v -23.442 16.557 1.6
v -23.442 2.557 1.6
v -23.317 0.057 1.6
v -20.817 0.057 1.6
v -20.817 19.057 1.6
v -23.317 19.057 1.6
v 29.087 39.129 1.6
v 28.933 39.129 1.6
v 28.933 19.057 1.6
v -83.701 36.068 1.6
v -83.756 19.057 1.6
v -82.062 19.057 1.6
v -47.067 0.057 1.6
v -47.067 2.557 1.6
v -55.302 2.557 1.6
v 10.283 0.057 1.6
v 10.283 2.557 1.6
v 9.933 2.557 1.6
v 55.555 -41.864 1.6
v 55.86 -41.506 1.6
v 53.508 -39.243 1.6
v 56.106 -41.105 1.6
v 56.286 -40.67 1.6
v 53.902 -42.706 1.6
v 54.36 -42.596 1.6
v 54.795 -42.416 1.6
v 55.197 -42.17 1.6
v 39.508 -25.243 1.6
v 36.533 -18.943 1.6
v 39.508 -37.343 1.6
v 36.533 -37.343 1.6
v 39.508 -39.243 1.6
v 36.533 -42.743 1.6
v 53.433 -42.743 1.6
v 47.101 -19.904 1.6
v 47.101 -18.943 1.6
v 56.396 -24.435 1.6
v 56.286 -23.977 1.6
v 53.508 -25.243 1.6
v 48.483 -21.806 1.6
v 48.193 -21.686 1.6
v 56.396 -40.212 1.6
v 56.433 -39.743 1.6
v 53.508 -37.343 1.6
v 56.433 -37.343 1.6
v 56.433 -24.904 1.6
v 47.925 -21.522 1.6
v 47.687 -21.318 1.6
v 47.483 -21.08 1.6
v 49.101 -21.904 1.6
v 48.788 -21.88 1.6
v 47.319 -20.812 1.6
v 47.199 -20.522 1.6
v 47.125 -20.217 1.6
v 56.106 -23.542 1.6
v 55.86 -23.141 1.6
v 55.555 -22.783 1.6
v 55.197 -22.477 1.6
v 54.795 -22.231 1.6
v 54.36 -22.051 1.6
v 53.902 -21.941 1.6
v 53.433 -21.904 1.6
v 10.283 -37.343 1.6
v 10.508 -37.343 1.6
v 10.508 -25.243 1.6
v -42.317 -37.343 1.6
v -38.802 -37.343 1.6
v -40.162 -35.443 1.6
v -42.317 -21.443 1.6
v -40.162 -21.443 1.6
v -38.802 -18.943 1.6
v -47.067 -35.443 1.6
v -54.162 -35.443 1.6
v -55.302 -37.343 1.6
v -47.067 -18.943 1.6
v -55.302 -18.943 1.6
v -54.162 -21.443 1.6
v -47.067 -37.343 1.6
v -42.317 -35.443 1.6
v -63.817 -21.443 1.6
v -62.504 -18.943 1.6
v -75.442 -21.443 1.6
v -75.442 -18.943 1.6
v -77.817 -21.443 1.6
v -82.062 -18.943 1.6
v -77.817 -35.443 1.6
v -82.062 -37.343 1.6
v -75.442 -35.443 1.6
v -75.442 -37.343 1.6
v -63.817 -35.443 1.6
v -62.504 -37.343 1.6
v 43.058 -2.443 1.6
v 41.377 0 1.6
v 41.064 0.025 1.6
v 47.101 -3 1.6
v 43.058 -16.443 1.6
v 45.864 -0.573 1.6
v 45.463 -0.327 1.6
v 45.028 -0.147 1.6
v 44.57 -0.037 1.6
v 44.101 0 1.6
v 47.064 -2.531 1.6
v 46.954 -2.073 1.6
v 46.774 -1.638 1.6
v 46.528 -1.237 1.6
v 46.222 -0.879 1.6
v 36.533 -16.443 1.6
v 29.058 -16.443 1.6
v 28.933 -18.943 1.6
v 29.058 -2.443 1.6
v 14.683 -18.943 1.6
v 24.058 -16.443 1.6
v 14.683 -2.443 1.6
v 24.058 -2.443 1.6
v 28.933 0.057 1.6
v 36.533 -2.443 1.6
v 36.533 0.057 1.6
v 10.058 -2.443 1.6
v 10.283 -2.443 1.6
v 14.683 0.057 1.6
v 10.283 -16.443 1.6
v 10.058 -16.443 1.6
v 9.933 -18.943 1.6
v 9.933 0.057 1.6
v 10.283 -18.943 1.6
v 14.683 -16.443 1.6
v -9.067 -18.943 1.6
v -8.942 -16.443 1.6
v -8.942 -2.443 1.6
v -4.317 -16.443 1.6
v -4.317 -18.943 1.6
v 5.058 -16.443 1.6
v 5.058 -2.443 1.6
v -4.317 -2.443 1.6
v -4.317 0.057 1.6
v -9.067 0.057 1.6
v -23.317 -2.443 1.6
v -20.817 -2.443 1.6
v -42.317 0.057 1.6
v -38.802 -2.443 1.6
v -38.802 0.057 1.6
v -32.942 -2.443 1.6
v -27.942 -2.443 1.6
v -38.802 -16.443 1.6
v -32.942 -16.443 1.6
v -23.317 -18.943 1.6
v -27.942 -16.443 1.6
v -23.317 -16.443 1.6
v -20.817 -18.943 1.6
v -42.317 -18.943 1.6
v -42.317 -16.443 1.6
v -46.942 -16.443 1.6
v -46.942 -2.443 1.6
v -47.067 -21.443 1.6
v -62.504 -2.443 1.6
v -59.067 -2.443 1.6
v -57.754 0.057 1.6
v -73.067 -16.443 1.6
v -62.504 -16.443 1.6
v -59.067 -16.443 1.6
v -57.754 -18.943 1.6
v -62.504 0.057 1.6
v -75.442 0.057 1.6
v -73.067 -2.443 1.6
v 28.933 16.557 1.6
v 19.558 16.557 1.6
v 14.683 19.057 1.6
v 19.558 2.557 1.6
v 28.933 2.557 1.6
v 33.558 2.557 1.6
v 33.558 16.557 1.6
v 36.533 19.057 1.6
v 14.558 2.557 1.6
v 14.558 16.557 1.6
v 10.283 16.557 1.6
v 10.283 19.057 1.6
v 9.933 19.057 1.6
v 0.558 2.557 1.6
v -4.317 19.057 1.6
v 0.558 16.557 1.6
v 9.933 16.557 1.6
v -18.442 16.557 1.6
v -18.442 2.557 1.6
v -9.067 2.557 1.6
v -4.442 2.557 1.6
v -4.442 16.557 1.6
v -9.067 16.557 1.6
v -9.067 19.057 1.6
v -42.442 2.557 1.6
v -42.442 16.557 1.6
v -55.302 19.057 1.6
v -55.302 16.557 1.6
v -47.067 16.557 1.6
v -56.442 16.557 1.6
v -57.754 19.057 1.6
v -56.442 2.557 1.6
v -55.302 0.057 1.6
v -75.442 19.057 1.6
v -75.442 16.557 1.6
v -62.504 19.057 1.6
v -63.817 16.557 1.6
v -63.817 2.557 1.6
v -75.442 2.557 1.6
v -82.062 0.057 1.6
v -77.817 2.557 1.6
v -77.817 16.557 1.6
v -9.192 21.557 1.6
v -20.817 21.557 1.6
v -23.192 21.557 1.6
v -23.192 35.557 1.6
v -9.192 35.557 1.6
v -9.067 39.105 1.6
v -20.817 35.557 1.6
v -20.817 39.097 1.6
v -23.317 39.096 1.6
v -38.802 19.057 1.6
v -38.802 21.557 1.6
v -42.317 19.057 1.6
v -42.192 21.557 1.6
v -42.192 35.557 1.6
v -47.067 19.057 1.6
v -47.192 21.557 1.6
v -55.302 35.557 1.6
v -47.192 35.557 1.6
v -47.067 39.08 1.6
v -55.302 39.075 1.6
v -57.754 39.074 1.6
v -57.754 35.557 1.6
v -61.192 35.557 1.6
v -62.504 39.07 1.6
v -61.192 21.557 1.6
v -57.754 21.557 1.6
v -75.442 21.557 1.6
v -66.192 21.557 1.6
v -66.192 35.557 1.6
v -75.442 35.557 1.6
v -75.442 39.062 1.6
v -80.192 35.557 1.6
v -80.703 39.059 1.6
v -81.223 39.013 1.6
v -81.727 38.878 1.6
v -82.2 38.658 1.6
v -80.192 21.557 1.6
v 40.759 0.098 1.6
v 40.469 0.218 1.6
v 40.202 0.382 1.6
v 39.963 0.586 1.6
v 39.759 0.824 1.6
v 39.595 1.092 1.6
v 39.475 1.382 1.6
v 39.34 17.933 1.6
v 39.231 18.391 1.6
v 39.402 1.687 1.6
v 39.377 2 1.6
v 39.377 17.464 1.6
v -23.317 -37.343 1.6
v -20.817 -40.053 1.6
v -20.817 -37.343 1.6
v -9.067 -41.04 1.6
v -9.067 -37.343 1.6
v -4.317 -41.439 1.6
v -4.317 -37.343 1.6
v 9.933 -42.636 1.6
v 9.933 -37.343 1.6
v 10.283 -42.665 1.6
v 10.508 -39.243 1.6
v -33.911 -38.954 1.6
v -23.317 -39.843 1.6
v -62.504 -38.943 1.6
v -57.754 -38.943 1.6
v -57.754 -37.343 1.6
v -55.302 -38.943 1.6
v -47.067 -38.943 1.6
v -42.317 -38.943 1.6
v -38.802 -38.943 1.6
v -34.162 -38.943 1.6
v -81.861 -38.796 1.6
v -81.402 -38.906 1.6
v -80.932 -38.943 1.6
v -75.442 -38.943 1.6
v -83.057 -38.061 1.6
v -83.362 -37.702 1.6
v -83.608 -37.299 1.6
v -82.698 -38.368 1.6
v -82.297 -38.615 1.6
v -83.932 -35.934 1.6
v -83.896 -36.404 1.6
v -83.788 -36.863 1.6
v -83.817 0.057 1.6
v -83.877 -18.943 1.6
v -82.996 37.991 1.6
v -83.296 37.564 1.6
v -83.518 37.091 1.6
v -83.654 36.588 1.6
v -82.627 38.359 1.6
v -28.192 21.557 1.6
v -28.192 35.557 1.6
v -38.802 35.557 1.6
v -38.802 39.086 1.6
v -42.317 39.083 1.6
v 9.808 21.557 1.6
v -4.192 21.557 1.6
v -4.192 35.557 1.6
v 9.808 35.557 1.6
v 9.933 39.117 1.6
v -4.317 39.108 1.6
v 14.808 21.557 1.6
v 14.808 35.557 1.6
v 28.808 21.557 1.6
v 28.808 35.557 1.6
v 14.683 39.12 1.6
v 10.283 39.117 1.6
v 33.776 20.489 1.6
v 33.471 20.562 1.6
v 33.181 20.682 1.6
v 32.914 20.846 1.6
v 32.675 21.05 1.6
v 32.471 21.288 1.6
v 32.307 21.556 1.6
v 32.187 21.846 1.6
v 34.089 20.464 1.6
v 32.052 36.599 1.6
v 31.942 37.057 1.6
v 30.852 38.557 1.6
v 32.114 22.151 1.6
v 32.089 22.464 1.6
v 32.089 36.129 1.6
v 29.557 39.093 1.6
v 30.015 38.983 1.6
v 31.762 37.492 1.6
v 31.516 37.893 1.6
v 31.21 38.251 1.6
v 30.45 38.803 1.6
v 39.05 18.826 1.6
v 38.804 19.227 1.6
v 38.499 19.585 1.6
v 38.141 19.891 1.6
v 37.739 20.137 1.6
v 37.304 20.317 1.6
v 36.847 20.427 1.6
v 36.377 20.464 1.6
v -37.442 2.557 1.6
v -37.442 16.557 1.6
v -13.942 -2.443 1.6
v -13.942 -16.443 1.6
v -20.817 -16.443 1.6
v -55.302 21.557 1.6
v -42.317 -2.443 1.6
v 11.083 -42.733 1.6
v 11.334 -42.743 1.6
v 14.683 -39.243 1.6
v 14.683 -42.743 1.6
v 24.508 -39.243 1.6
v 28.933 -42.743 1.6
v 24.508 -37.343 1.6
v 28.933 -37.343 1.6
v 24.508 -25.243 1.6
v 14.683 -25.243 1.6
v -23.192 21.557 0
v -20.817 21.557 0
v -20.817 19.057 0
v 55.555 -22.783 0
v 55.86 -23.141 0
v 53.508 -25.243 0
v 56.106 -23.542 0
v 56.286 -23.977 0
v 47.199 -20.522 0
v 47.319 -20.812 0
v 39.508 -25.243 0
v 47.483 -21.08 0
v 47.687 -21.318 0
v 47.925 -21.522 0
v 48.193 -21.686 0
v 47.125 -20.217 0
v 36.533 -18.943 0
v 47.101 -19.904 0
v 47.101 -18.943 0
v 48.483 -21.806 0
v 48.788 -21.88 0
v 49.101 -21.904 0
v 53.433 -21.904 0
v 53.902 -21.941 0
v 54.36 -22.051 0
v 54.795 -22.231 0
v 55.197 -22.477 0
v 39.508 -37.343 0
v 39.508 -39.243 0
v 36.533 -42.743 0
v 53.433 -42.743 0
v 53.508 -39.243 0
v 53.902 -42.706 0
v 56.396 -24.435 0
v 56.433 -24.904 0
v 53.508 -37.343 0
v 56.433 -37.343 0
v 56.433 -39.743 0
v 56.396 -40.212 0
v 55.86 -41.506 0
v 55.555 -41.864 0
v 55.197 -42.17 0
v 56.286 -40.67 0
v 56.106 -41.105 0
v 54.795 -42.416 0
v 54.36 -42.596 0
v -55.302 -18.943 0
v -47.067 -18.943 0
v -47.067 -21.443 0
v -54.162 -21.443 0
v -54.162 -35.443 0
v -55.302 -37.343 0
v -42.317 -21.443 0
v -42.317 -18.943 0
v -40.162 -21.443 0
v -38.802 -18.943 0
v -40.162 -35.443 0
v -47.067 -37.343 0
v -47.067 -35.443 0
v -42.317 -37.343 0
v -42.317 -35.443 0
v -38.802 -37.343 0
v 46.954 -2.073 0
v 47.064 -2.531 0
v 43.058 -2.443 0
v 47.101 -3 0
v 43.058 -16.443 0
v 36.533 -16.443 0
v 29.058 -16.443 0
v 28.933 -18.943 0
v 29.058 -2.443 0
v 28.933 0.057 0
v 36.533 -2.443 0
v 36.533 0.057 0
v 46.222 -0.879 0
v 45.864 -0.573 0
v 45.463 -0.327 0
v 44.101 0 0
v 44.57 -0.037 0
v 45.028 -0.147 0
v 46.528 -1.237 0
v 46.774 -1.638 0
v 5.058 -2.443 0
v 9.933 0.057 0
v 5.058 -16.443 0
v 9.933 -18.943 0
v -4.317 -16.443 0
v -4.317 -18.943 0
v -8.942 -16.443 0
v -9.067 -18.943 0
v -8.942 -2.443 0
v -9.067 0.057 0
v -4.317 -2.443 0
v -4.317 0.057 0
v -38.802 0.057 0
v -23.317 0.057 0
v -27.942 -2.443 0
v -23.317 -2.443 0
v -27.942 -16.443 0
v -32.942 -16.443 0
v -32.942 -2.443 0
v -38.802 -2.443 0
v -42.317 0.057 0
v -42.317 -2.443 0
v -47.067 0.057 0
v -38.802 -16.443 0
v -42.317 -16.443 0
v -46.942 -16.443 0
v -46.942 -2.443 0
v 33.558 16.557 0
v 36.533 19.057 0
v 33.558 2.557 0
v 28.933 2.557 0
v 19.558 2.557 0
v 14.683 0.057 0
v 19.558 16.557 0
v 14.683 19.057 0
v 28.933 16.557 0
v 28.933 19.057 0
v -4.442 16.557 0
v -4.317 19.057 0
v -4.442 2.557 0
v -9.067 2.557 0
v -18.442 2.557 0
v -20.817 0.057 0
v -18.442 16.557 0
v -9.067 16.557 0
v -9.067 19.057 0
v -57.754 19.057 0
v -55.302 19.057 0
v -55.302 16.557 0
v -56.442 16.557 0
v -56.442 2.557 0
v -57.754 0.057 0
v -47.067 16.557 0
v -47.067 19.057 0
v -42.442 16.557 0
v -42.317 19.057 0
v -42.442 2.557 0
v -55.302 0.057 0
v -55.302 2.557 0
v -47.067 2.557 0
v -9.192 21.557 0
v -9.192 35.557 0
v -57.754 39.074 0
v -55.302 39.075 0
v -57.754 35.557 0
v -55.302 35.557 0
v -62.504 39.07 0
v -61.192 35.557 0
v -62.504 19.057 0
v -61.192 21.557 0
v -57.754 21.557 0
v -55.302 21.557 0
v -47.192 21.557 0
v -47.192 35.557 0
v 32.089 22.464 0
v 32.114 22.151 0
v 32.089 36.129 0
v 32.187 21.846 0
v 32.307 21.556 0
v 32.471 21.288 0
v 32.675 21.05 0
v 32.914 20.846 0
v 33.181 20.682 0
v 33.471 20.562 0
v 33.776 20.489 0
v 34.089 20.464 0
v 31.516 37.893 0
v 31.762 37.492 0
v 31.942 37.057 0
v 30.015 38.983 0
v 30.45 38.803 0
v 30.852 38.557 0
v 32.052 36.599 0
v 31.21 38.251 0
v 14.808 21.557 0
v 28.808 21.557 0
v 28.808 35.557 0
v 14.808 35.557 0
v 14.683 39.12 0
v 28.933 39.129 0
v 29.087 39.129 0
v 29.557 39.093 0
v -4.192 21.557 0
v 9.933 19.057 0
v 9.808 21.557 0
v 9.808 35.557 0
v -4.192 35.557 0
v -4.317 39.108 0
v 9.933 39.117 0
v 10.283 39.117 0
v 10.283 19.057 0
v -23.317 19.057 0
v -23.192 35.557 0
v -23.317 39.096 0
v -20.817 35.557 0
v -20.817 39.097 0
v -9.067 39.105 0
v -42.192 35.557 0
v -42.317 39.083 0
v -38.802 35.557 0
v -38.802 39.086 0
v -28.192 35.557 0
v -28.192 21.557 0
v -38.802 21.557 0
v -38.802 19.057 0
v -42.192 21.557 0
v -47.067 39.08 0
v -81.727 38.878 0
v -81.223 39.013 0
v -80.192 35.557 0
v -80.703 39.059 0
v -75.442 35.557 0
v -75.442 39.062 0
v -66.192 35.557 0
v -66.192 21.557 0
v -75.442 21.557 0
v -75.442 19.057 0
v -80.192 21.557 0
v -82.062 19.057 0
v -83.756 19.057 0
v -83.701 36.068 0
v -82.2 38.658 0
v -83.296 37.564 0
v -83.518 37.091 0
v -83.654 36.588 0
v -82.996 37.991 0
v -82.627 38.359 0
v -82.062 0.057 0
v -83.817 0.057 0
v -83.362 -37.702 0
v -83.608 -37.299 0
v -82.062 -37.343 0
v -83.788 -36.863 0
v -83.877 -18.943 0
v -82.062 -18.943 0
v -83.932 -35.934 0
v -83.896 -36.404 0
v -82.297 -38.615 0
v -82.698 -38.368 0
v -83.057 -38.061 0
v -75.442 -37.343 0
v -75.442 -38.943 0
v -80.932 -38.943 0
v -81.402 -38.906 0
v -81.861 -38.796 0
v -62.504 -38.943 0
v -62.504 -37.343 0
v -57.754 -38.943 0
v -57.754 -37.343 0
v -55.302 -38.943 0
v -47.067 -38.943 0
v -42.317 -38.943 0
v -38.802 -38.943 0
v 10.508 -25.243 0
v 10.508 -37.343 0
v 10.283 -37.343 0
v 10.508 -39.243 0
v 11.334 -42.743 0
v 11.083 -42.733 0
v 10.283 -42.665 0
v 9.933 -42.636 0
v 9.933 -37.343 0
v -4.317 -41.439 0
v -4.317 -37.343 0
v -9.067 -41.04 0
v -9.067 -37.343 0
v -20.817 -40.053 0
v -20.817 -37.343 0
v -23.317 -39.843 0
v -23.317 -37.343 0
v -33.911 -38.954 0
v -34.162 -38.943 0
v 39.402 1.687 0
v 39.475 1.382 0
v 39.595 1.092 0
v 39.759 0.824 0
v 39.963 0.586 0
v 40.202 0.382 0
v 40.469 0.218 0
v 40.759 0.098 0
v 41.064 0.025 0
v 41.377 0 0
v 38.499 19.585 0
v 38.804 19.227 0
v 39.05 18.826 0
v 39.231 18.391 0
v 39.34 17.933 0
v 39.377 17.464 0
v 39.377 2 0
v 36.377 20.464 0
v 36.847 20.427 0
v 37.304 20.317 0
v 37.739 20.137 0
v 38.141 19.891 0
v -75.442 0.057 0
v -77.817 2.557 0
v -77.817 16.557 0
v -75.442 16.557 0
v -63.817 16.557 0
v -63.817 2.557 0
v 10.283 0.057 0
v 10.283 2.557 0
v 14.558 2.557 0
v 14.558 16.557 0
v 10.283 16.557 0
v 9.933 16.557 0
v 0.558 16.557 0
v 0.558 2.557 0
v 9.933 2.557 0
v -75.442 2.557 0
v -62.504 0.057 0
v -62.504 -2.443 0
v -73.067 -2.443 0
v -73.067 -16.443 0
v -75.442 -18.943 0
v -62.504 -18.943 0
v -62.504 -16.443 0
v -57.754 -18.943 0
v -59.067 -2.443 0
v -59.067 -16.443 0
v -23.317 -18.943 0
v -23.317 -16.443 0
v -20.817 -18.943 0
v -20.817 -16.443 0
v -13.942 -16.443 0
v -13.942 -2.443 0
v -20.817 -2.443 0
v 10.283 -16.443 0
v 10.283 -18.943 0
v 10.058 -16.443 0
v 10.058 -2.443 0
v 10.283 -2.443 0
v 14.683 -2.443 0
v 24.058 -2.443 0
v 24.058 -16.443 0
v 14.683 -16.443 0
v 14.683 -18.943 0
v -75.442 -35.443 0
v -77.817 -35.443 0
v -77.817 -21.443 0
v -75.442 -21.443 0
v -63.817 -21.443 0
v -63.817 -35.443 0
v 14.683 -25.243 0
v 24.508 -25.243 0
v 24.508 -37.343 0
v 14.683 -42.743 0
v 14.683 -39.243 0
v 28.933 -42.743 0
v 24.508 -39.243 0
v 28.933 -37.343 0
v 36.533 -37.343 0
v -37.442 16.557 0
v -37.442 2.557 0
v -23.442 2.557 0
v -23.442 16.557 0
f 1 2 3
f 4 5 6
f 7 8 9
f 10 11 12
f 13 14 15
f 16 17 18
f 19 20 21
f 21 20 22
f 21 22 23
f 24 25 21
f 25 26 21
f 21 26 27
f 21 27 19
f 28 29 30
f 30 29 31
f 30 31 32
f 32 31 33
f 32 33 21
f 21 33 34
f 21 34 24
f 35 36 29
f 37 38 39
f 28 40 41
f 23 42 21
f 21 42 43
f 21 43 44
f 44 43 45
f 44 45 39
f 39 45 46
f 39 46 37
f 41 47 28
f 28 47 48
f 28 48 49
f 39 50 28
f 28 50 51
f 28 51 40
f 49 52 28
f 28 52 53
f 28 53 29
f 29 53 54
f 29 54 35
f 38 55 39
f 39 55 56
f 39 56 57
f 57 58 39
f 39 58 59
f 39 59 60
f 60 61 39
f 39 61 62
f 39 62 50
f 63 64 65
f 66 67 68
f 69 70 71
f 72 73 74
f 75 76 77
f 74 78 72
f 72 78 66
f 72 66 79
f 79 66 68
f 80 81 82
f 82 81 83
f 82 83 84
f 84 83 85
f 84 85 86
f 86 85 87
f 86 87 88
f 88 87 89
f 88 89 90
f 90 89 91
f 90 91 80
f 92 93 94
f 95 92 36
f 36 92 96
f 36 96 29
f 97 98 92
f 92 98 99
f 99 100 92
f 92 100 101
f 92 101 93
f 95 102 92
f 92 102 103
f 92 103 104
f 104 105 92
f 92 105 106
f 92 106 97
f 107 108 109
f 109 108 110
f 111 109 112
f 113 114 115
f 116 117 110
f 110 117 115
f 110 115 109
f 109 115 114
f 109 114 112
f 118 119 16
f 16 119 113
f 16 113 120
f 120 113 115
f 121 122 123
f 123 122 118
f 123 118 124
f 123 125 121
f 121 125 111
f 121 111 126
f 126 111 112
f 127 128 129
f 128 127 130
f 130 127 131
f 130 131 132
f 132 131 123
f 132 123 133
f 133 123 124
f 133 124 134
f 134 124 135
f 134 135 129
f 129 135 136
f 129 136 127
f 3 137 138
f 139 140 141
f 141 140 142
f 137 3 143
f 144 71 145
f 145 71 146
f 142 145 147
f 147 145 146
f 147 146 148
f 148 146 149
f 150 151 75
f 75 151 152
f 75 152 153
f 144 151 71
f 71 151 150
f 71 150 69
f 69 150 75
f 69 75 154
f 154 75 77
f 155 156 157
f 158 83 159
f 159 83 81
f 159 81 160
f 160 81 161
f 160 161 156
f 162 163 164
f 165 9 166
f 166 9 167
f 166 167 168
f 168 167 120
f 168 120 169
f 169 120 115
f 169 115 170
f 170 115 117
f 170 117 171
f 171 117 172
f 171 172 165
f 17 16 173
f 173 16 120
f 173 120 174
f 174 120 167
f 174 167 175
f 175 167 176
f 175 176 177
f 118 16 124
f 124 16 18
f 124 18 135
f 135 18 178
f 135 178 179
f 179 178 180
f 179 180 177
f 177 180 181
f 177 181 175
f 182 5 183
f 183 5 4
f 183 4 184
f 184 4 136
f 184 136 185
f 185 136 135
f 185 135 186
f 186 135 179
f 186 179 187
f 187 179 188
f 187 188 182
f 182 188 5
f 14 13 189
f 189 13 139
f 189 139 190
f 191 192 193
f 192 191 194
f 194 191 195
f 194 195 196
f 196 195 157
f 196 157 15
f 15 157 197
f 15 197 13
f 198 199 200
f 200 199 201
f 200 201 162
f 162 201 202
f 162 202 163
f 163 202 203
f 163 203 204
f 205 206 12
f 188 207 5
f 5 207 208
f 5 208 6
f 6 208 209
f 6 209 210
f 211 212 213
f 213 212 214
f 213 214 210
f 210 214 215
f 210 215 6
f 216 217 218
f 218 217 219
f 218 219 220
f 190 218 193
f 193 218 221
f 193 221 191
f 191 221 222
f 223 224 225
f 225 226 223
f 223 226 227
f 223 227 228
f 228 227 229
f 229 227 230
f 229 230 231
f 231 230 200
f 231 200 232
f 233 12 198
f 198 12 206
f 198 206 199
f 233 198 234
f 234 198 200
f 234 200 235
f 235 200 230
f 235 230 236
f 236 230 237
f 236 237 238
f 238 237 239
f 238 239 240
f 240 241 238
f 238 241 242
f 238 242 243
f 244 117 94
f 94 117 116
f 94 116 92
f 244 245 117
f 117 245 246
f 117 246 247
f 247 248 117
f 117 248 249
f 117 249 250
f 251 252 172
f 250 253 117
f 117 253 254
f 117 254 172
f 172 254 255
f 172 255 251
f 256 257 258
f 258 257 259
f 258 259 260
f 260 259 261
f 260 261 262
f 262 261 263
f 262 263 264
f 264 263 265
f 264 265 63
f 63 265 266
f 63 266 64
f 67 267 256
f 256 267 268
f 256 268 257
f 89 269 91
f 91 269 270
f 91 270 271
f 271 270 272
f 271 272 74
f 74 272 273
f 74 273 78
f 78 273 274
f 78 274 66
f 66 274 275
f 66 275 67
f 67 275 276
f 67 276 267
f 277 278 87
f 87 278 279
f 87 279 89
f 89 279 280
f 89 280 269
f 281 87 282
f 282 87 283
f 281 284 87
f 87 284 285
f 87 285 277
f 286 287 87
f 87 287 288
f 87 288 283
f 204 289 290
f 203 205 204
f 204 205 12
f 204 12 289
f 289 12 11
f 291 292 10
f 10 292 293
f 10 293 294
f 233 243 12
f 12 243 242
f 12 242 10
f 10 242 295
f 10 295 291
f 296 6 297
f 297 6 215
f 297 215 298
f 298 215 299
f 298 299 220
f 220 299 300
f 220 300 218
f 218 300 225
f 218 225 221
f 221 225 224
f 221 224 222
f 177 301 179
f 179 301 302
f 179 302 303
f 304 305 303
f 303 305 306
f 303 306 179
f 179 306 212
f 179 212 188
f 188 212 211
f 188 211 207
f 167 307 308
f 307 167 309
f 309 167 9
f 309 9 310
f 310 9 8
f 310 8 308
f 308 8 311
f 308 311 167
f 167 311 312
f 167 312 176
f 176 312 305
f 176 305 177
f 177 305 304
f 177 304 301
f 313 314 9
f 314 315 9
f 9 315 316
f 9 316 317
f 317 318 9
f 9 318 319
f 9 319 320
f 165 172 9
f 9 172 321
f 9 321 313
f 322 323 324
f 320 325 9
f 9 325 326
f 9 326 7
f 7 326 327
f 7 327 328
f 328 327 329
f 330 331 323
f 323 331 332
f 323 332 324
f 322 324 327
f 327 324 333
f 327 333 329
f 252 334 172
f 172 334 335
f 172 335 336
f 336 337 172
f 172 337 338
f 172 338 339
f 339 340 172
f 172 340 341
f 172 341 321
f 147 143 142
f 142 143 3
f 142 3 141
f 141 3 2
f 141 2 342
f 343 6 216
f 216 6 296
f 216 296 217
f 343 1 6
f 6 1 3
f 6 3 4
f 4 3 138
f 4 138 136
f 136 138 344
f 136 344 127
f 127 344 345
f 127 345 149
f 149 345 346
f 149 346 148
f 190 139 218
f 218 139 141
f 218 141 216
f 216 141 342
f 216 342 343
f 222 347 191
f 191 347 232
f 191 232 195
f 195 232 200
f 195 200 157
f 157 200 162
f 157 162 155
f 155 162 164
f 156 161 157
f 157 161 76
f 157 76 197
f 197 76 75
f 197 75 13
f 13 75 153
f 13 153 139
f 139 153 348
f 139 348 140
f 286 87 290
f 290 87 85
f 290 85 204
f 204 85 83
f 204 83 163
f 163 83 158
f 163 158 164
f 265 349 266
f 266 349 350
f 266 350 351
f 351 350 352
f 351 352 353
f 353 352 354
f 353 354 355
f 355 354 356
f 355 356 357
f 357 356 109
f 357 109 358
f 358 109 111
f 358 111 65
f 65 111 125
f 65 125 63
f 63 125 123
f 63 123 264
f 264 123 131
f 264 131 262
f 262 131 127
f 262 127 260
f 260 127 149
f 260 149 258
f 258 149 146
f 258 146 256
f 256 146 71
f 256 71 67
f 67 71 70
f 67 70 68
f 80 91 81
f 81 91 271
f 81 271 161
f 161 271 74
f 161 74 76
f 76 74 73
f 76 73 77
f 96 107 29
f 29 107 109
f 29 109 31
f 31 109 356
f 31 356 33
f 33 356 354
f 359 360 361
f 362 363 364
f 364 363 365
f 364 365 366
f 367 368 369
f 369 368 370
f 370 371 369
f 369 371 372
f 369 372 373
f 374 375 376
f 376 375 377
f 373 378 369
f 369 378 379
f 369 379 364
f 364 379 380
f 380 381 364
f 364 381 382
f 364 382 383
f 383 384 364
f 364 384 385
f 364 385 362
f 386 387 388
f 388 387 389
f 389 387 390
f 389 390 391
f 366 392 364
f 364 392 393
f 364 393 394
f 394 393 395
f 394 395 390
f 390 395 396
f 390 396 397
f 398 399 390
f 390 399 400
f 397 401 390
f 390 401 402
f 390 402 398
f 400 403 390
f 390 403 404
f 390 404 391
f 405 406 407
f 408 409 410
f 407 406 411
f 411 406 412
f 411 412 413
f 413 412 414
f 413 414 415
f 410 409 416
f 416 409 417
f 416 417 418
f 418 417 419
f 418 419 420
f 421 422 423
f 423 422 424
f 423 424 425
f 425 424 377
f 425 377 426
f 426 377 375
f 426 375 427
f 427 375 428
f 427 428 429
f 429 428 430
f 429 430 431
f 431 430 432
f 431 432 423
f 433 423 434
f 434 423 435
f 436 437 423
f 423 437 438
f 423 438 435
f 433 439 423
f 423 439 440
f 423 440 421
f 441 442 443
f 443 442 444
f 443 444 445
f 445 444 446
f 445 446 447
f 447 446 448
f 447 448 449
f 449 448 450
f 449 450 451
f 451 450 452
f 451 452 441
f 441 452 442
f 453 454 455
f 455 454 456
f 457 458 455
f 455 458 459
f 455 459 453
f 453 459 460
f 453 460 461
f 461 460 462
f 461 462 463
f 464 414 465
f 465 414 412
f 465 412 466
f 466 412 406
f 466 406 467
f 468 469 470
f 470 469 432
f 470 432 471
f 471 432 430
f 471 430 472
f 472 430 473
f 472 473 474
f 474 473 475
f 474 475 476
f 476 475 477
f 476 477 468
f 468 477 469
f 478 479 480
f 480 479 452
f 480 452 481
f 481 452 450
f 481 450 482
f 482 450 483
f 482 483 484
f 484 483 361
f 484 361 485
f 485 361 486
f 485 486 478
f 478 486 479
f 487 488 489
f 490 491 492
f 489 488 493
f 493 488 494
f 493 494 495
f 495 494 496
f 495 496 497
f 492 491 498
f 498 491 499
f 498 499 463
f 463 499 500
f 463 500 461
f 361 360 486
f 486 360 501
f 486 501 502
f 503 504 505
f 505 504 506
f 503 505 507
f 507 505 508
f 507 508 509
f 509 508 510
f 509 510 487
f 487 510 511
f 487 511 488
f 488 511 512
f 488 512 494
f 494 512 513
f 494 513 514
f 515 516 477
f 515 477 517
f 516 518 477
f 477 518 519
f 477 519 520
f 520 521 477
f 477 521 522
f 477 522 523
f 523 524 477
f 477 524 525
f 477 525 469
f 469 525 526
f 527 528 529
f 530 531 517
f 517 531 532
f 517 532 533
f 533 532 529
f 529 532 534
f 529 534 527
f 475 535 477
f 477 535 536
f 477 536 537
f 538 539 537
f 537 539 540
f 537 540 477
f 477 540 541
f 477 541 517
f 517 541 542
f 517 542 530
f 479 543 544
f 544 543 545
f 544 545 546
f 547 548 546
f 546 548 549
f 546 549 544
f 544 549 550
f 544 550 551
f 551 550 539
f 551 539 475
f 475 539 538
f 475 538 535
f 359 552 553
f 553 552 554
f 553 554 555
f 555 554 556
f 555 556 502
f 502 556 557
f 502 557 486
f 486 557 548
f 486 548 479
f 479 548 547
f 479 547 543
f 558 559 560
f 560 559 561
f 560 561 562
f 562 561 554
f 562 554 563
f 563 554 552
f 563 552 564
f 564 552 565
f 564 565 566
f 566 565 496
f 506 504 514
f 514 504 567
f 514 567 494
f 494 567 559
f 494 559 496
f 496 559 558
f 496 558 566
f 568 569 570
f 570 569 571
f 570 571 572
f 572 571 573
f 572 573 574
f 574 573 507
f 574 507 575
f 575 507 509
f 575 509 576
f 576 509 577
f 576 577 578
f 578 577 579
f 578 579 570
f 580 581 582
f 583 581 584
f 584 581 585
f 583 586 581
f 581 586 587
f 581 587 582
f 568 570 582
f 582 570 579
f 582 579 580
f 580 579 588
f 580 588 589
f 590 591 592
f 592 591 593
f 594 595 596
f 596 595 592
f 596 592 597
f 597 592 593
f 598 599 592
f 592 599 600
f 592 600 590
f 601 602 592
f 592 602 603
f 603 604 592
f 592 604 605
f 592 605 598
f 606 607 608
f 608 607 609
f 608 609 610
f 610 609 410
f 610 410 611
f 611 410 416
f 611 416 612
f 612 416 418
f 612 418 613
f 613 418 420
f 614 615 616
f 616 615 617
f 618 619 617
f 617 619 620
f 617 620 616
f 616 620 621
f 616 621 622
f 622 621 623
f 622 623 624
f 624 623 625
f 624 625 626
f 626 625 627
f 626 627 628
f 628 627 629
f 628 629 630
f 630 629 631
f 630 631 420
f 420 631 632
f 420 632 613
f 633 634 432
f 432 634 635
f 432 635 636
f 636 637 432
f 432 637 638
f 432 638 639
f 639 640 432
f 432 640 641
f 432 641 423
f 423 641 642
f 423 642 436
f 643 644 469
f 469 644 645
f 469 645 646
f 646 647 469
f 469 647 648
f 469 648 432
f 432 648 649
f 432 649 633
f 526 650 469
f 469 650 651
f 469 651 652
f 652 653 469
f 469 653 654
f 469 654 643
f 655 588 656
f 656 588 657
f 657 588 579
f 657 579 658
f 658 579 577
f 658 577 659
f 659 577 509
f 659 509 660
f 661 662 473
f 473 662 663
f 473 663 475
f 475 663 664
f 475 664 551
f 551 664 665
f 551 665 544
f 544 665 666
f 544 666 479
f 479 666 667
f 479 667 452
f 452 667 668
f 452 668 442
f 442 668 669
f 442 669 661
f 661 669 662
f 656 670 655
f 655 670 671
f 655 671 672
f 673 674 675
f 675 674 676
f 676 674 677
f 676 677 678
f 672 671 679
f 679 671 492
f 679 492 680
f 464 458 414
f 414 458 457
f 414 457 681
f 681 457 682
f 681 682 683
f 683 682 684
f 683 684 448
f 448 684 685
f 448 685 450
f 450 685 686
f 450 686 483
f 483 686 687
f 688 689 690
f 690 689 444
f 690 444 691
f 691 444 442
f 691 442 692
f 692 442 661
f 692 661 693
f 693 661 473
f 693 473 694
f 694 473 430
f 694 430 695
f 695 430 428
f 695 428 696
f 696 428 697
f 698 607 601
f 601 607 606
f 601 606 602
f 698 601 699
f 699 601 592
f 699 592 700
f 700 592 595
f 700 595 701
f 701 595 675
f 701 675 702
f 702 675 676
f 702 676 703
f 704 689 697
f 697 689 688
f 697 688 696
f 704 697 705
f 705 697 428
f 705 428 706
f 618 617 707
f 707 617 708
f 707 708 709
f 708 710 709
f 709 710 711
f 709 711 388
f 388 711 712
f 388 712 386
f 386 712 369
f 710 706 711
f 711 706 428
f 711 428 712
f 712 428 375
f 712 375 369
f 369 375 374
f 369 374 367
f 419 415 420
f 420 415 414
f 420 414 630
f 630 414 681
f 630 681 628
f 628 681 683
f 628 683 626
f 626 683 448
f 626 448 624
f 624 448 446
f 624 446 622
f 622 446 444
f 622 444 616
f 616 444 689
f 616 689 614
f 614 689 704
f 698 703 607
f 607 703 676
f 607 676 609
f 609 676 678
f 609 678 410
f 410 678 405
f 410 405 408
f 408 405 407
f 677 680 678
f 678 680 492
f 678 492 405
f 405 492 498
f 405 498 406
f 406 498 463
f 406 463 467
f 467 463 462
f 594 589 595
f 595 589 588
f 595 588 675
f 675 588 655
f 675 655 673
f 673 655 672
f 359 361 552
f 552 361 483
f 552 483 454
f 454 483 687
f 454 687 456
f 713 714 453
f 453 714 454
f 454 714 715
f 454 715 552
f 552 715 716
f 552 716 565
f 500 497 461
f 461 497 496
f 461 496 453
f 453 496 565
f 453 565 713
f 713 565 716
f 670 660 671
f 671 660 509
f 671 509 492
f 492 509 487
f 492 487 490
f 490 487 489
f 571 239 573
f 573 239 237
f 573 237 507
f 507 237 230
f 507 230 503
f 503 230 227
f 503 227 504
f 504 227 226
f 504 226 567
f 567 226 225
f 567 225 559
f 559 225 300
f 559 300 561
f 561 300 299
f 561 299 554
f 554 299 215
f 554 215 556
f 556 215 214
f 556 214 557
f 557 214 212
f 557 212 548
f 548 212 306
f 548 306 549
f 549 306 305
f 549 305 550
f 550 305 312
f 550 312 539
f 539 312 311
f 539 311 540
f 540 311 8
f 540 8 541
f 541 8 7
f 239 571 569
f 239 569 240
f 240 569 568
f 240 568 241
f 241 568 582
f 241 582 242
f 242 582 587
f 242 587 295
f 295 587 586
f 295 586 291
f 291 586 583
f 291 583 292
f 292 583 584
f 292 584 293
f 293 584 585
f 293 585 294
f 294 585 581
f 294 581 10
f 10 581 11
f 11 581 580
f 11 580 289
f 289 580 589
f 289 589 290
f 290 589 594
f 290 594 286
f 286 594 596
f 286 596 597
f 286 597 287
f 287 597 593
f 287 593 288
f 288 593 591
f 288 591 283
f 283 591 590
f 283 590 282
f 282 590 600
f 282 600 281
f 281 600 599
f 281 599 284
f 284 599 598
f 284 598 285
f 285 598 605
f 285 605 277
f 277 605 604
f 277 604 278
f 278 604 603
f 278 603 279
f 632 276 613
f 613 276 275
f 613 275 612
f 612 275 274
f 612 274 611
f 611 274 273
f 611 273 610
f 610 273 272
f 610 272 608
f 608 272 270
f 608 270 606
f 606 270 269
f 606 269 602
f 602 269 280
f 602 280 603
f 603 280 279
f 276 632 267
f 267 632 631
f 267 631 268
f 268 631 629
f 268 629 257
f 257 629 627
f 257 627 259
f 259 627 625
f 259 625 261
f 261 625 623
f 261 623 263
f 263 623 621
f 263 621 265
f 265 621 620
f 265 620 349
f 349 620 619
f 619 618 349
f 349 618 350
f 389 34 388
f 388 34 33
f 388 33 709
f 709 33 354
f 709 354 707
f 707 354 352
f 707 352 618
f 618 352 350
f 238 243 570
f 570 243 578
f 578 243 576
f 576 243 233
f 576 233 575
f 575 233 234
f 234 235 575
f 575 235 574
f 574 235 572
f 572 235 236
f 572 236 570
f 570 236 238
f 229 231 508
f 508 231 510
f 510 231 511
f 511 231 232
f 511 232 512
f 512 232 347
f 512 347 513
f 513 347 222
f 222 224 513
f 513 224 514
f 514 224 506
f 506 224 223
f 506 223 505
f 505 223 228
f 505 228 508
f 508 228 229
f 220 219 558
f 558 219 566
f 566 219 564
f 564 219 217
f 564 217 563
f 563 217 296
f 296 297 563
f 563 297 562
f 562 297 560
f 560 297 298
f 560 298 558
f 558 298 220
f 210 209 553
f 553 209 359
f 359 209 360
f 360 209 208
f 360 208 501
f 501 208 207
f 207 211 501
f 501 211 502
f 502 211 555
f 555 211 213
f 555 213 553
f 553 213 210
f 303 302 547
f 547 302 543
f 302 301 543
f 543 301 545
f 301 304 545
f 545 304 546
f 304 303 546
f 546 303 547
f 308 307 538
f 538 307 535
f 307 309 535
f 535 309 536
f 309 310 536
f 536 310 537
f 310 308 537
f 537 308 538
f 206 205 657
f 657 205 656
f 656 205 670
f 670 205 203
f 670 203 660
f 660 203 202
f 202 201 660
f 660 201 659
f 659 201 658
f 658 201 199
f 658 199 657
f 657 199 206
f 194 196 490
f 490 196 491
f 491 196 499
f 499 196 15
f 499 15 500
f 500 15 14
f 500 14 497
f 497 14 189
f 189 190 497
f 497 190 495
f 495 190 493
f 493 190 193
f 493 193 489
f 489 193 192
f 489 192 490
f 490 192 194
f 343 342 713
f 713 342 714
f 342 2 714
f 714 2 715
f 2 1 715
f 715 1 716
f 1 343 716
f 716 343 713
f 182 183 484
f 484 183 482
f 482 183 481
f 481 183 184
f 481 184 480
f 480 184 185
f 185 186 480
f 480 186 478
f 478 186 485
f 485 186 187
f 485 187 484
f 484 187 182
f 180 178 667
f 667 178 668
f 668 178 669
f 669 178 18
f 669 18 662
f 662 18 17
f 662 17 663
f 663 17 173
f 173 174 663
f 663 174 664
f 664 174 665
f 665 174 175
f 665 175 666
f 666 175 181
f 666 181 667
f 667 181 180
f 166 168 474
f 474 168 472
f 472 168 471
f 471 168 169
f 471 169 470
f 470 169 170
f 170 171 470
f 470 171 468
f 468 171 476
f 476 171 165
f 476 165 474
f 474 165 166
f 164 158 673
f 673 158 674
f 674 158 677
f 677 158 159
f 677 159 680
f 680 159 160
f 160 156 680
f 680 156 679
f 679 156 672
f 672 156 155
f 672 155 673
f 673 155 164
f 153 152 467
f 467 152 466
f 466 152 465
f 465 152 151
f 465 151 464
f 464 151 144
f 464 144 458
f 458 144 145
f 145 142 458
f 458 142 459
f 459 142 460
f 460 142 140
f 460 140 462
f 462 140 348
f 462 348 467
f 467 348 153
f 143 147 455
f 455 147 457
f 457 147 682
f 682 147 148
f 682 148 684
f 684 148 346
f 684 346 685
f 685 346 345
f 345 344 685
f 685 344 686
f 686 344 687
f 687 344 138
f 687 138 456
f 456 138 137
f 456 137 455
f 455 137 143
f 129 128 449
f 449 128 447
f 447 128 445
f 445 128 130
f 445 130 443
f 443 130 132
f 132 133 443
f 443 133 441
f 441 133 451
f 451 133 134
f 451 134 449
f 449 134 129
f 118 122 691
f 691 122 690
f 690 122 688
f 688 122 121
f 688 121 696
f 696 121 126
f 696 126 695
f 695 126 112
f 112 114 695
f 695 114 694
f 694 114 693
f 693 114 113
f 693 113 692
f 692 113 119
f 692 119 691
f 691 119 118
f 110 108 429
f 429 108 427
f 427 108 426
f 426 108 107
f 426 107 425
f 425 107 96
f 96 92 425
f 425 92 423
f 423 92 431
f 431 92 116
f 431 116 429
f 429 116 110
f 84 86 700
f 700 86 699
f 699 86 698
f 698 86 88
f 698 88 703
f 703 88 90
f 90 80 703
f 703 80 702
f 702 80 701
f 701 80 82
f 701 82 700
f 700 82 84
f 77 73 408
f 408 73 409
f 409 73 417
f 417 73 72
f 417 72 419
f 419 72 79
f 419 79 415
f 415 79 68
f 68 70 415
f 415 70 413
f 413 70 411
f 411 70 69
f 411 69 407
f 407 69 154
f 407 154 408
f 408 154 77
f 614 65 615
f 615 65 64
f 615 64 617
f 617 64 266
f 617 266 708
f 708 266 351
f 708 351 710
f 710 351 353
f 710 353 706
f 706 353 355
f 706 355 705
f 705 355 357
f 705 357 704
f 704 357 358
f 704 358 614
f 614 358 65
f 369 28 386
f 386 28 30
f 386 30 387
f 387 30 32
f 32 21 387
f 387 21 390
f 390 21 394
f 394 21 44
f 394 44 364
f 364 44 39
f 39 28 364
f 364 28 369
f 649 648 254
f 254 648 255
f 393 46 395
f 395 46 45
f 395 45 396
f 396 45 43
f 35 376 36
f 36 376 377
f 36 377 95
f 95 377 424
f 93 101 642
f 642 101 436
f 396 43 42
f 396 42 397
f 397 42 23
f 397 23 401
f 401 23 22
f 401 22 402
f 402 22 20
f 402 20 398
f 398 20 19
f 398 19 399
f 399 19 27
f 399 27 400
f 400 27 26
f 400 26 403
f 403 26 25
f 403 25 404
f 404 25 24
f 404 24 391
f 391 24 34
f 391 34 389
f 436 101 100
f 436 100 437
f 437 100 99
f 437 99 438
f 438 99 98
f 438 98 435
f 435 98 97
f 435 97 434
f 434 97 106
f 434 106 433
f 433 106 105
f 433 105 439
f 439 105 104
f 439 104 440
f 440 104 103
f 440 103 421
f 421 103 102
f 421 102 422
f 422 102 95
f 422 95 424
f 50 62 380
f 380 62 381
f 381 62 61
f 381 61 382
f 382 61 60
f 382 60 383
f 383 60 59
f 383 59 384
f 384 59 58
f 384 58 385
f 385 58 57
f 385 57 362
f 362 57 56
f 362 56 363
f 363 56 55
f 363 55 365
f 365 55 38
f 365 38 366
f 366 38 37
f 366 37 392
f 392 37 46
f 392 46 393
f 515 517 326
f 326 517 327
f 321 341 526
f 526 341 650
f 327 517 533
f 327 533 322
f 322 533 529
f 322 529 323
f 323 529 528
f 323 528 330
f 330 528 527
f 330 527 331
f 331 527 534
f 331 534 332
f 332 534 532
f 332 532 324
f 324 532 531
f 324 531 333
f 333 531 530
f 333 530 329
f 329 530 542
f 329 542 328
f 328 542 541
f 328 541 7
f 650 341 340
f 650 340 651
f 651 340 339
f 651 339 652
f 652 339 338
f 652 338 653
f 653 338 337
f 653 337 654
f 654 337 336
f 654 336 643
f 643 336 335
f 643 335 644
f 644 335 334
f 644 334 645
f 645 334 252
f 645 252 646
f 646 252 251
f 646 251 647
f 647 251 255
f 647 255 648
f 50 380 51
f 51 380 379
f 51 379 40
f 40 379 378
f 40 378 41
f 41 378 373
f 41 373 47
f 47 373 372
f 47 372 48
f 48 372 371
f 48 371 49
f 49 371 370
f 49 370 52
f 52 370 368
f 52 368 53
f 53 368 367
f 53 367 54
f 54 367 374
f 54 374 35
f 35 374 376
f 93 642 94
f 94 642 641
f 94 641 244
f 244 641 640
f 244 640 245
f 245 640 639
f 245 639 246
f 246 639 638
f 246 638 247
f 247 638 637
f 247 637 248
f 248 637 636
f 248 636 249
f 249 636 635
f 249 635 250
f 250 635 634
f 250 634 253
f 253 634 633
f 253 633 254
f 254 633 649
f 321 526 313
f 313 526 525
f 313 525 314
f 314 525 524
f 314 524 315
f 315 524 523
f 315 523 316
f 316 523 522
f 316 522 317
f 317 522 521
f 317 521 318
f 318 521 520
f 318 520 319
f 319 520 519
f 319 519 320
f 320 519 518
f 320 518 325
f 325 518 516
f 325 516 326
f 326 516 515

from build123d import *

# Parameters (mm, degrees)
SKETCH1_R           = 1.5
SKETCH1_W           = 14
SKETCH1_H           = 14
BOSS_EXTRUDE1_DEPTH = 1.6
CUT_EXTRUDE1_DEPTH  = 1.6
FILLET1_R           = 3
SKETCH3_W           = 5.928661094
SKETCH3_H           = 12.435728147
SKETCH3_W_2         = 5.350255133
SKETCH3_H_2         = 5.928661094
SKETCH3_W_3         = 5.639458113
SKETCH3_W_4         = 6.651668543
SKETCH3_H_3         = 7.446976739
SKETCH3_W_5         = 5.928661093
SKETCH3_H_4         = 5.784059603
SKETCH3_H_5         = 4.627247683
BOSS_EXTRUDE2_DEPTH = 1.6
CUT_EXTRUDE2_DEPTH  = 95.202490958
FILLET2_R           = 3
CUT_EXTRUDE3_DEPTH  = 95.202490958
FILLET3_R           = 3
FILLET4_R           = 3
FILLET7_R           = 2


with BuildPart() as part:
    # Sketch1 → Boss-Extrude1 (new body)
    with BuildSketch(Plane.XY):
        with BuildLine():
            Line((69.256483633, 39.154946315), (-80.703110167, 39.058787515))
            ThreePointArc((-80.703110167, 39.058787515), (-82.819785745, 38.18282616), (-83.701171171, 36.068403419))
            Line((-83.701171171, 36.068403419), (-83.931946571, -35.933513481))
            ThreePointArc((-83.931946571, -35.933513481), (-83.056679124, -38.061046878), (-80.931961975, -38.943128786))
            Line((-80.931961975, -38.943128786), (-34.162352475, -38.943128786))
            ThreePointArc((-34.162352475, -38.943128786), (-34.036703471, -38.945761219), (-33.911274976, -38.953653901))
            Line((-33.911274976, -38.953653901), (11.083089424, -42.732603701))
            ThreePointArc((11.083089424, -42.732603701), (11.20851792, -42.740496382), (11.334166924, -42.743128815))
            Line((11.334166924, -42.743128815), (59.596129524, -42.743128815))
            ThreePointArc((59.596129524, -42.743128815), (61.35026035, -42.176855395), (62.442179406, -40.69181219))
            Line((62.442179406, -40.69181219), (72.104457106, -11.70497919))
            ThreePointArc((72.104457106, -11.70497919), (72.219669608, -11.236842575), (72.258407243, -10.756295796))
            Line((72.258407243, -10.756295796), (72.258407243, 36.154946904))
            ThreePointArc((72.258407243, 36.154946904), (71.379047386, 38.276947252), (69.256483633, 39.154946315))
        make_face()
        with Locations((35.108407229, 34.256871219)):
            Circle(SKETCH1_R, mode=Mode.SUBTRACT)
        with Locations((-28.161592771, -22.743128781)):
            Circle(SKETCH1_R, mode=Mode.SUBTRACT)
        with Locations((-1.491592771, -27.493128781)):
            Circle(SKETCH1_R, mode=Mode.SUBTRACT)
        with Locations((-79.366592771, -9.443128781)):
            Circle(SKETCH1_R, mode=Mode.SUBTRACT)
        with Locations((49.358407229, -9.443128781)):
            Circle(SKETCH1_R, mode=Mode.SUBTRACT)
        with Locations((-59.891592771, 17.156871219)):
            Circle(SKETCH1_R, mode=Mode.SUBTRACT)
        with Locations((2.808407229, 28.556871219)):
            Rectangle(SKETCH1_W, SKETCH1_H, mode=Mode.SUBTRACT)
        with Locations((21.808407229, 28.556871219)):
            Rectangle(SKETCH1_W, SKETCH1_H, mode=Mode.SUBTRACT)
        with Locations((-35.191592771, 28.556871219)):
            Rectangle(SKETCH1_W, SKETCH1_H, mode=Mode.SUBTRACT)
        with Locations((-16.191592771, 28.556871219)):
            Rectangle(SKETCH1_W, SKETCH1_H, mode=Mode.SUBTRACT)
        with Locations((-70.816592771, 9.556871219)):
            Rectangle(SKETCH1_W, SKETCH1_H, mode=Mode.SUBTRACT)
        with Locations((-49.441592771, 9.556871219)):
            Rectangle(SKETCH1_W, SKETCH1_H, mode=Mode.SUBTRACT)
        with Locations((-30.441592771, 9.556871219)):
            Rectangle(SKETCH1_W, SKETCH1_H, mode=Mode.SUBTRACT)
        with Locations((-11.441592771, 9.556871219)):
            Rectangle(SKETCH1_W, SKETCH1_H, mode=Mode.SUBTRACT)
        with Locations((-39.941592771, -9.443128781)):
            Rectangle(SKETCH1_W, SKETCH1_H, mode=Mode.SUBTRACT)
        with Locations((-1.941592771, -9.443128781)):
            Rectangle(SKETCH1_W, SKETCH1_H, mode=Mode.SUBTRACT)
        with Locations((26.558407229, 9.556871219)):
            Rectangle(SKETCH1_W, SKETCH1_H, mode=Mode.SUBTRACT)
        with Locations((36.058407229, -9.443128781)):
            Rectangle(SKETCH1_W, SKETCH1_H, mode=Mode.SUBTRACT)
        with Locations((17.508407229, -32.243128781)):
            Rectangle(SKETCH1_W, SKETCH1_H, mode=Mode.SUBTRACT)
        with Locations((-70.816592771, -28.443128781)):
            Rectangle(SKETCH1_W, SKETCH1_H, mode=Mode.SUBTRACT)
        with Locations((-73.191592771, 28.556871219)):
            Rectangle(SKETCH1_W, SKETCH1_H, mode=Mode.SUBTRACT)
        with Locations((-54.191592771, 28.556871219)):
            Rectangle(SKETCH1_W, SKETCH1_H, mode=Mode.SUBTRACT)
        with Locations((7.558407229, 9.556871219)):
            Rectangle(SKETCH1_W, SKETCH1_H, mode=Mode.SUBTRACT)
        with Locations((-66.066592771, -9.443128781)):
            Rectangle(SKETCH1_W, SKETCH1_H, mode=Mode.SUBTRACT)
        with Locations((-20.941592771, -9.443128781)):
            Rectangle(SKETCH1_W, SKETCH1_H, mode=Mode.SUBTRACT)
        with Locations((17.058407229, -9.443128781)):
            Rectangle(SKETCH1_W, SKETCH1_H, mode=Mode.SUBTRACT)
        with Locations((-47.161592771, -28.443128781)):
            Rectangle(SKETCH1_W, SKETCH1_H, mode=Mode.SUBTRACT)
        with Locations((46.508407229, -32.243128781)):
            Rectangle(SKETCH1_W, SKETCH1_H, mode=Mode.SUBTRACT)
    extrude(amount=BOSS_EXTRUDE1_DEPTH)

    # Sketch2 → Cut-Extrude1 (cut)
    with BuildSketch(Plane.XY.offset(1.6)):
        Polygon((39.377336656, 41.971884199), (39.377336656, 0), (47.100744033, 0), (47.100744033, -5.977603272), (56.433194615, -5.977603272), (56.433194615, -45.238257442), (88.453154369, -41.859266714), (93.4411883, 41.971884199), align=None)
    extrude(amount=-CUT_EXTRUDE1_DEPTH, mode=Mode.SUBTRACT)

    # Fillet1
    fillet1_edges = [part.edges().sort_by_distance(p)[0] for p in [
        (56.433194615, -42.743128815, 0.8),
        (39.377336656, 39.135786868, 0.8),
        (56.433194615, -5.977603272, 0.8),
        (47.100744033, 0, 0.8),
    ]]
    fillet(fillet1_edges, radius=FILLET1_R)

    # Sketch3 → Boss-Extrude2 (add, through all)
    with BuildSketch(Plane.XY.offset(1.6)):
        with Locations((-78.603151983, -9.902316574)):
            Rectangle(SKETCH3_W, SKETCH3_H)
        with Locations((-60.094161253, 17.210462816)):
            Rectangle(SKETCH3_W_2, SKETCH3_H_2)
        with Locations((-27.992630455, -23.133352916)):
            Rectangle(SKETCH3_W_3, SKETCH3_H_2)
        with Locations((-1.313655536, -26.856841286)):
            Rectangle(SKETCH3_W_4, SKETCH3_H_3)
        with Locations((49.658369718, -10.480722534)):
            Rectangle(SKETCH3_W_5, SKETCH3_H_4)
        with Locations((35.05361922, 33.911934921)):
            Rectangle(SKETCH3_W_2, SKETCH3_H_5)
    extrude(amount=-BOSS_EXTRUDE2_DEPTH)

    # Sketch4 → Cut-Extrude2 (cut, through all)
    with BuildSketch(Plane.XY.offset(1.6)):
        Polygon((47.100744033, -5.977603272), (47.100744033, -21.90424025), (70.264082054, -21.90424025), (70.264082054, 0), align=None)
    extrude(amount=-CUT_EXTRUDE2_DEPTH, mode=Mode.SUBTRACT)

    # Fillet2
    fillet2_edges = [part.edges().sort_by_distance(p)[0] for p in [
        (56.433194615, -21.90424025, 0.8),
    ]]
    fillet(fillet2_edges, radius=FILLET2_R)

    # Sketch5 → Cut-Extrude3 (cut, through all)
    with BuildSketch(Plane.XY.offset(1.6)):
        Polygon((39.377336656, 20.463996343), (32.089288673, 20.463996343), (32.089288673, 44.034039226), (51.321286853, 44.034039226), align=None)
    extrude(amount=-CUT_EXTRUDE3_DEPTH, mode=Mode.SUBTRACT)

    # Fillet3
    fillet3_edges = [part.edges().sort_by_distance(p)[0] for p in [
        (32.089288673, 39.131113542, 0.8),
    ]]
    fillet(fillet3_edges, radius=FILLET3_R)

    # Fillet4
    fillet4_edges = [part.edges().sort_by_distance(p)[0] for p in [
        (39.377336656, 20.463996343, 0.8),
    ]]
    fillet(fillet4_edges, radius=FILLET4_R)

    # Fillet7
    fillet7_edges = [part.edges().sort_by_distance(p)[0] for p in [
        (39.377336656, 0, 0.8),
        (47.100744033, -21.90424025, 0.8),
        (32.089288673, 20.463996343, 0.8),
    ]]
    fillet(fillet7_edges, radius=FILLET7_R)


solid = part.part
